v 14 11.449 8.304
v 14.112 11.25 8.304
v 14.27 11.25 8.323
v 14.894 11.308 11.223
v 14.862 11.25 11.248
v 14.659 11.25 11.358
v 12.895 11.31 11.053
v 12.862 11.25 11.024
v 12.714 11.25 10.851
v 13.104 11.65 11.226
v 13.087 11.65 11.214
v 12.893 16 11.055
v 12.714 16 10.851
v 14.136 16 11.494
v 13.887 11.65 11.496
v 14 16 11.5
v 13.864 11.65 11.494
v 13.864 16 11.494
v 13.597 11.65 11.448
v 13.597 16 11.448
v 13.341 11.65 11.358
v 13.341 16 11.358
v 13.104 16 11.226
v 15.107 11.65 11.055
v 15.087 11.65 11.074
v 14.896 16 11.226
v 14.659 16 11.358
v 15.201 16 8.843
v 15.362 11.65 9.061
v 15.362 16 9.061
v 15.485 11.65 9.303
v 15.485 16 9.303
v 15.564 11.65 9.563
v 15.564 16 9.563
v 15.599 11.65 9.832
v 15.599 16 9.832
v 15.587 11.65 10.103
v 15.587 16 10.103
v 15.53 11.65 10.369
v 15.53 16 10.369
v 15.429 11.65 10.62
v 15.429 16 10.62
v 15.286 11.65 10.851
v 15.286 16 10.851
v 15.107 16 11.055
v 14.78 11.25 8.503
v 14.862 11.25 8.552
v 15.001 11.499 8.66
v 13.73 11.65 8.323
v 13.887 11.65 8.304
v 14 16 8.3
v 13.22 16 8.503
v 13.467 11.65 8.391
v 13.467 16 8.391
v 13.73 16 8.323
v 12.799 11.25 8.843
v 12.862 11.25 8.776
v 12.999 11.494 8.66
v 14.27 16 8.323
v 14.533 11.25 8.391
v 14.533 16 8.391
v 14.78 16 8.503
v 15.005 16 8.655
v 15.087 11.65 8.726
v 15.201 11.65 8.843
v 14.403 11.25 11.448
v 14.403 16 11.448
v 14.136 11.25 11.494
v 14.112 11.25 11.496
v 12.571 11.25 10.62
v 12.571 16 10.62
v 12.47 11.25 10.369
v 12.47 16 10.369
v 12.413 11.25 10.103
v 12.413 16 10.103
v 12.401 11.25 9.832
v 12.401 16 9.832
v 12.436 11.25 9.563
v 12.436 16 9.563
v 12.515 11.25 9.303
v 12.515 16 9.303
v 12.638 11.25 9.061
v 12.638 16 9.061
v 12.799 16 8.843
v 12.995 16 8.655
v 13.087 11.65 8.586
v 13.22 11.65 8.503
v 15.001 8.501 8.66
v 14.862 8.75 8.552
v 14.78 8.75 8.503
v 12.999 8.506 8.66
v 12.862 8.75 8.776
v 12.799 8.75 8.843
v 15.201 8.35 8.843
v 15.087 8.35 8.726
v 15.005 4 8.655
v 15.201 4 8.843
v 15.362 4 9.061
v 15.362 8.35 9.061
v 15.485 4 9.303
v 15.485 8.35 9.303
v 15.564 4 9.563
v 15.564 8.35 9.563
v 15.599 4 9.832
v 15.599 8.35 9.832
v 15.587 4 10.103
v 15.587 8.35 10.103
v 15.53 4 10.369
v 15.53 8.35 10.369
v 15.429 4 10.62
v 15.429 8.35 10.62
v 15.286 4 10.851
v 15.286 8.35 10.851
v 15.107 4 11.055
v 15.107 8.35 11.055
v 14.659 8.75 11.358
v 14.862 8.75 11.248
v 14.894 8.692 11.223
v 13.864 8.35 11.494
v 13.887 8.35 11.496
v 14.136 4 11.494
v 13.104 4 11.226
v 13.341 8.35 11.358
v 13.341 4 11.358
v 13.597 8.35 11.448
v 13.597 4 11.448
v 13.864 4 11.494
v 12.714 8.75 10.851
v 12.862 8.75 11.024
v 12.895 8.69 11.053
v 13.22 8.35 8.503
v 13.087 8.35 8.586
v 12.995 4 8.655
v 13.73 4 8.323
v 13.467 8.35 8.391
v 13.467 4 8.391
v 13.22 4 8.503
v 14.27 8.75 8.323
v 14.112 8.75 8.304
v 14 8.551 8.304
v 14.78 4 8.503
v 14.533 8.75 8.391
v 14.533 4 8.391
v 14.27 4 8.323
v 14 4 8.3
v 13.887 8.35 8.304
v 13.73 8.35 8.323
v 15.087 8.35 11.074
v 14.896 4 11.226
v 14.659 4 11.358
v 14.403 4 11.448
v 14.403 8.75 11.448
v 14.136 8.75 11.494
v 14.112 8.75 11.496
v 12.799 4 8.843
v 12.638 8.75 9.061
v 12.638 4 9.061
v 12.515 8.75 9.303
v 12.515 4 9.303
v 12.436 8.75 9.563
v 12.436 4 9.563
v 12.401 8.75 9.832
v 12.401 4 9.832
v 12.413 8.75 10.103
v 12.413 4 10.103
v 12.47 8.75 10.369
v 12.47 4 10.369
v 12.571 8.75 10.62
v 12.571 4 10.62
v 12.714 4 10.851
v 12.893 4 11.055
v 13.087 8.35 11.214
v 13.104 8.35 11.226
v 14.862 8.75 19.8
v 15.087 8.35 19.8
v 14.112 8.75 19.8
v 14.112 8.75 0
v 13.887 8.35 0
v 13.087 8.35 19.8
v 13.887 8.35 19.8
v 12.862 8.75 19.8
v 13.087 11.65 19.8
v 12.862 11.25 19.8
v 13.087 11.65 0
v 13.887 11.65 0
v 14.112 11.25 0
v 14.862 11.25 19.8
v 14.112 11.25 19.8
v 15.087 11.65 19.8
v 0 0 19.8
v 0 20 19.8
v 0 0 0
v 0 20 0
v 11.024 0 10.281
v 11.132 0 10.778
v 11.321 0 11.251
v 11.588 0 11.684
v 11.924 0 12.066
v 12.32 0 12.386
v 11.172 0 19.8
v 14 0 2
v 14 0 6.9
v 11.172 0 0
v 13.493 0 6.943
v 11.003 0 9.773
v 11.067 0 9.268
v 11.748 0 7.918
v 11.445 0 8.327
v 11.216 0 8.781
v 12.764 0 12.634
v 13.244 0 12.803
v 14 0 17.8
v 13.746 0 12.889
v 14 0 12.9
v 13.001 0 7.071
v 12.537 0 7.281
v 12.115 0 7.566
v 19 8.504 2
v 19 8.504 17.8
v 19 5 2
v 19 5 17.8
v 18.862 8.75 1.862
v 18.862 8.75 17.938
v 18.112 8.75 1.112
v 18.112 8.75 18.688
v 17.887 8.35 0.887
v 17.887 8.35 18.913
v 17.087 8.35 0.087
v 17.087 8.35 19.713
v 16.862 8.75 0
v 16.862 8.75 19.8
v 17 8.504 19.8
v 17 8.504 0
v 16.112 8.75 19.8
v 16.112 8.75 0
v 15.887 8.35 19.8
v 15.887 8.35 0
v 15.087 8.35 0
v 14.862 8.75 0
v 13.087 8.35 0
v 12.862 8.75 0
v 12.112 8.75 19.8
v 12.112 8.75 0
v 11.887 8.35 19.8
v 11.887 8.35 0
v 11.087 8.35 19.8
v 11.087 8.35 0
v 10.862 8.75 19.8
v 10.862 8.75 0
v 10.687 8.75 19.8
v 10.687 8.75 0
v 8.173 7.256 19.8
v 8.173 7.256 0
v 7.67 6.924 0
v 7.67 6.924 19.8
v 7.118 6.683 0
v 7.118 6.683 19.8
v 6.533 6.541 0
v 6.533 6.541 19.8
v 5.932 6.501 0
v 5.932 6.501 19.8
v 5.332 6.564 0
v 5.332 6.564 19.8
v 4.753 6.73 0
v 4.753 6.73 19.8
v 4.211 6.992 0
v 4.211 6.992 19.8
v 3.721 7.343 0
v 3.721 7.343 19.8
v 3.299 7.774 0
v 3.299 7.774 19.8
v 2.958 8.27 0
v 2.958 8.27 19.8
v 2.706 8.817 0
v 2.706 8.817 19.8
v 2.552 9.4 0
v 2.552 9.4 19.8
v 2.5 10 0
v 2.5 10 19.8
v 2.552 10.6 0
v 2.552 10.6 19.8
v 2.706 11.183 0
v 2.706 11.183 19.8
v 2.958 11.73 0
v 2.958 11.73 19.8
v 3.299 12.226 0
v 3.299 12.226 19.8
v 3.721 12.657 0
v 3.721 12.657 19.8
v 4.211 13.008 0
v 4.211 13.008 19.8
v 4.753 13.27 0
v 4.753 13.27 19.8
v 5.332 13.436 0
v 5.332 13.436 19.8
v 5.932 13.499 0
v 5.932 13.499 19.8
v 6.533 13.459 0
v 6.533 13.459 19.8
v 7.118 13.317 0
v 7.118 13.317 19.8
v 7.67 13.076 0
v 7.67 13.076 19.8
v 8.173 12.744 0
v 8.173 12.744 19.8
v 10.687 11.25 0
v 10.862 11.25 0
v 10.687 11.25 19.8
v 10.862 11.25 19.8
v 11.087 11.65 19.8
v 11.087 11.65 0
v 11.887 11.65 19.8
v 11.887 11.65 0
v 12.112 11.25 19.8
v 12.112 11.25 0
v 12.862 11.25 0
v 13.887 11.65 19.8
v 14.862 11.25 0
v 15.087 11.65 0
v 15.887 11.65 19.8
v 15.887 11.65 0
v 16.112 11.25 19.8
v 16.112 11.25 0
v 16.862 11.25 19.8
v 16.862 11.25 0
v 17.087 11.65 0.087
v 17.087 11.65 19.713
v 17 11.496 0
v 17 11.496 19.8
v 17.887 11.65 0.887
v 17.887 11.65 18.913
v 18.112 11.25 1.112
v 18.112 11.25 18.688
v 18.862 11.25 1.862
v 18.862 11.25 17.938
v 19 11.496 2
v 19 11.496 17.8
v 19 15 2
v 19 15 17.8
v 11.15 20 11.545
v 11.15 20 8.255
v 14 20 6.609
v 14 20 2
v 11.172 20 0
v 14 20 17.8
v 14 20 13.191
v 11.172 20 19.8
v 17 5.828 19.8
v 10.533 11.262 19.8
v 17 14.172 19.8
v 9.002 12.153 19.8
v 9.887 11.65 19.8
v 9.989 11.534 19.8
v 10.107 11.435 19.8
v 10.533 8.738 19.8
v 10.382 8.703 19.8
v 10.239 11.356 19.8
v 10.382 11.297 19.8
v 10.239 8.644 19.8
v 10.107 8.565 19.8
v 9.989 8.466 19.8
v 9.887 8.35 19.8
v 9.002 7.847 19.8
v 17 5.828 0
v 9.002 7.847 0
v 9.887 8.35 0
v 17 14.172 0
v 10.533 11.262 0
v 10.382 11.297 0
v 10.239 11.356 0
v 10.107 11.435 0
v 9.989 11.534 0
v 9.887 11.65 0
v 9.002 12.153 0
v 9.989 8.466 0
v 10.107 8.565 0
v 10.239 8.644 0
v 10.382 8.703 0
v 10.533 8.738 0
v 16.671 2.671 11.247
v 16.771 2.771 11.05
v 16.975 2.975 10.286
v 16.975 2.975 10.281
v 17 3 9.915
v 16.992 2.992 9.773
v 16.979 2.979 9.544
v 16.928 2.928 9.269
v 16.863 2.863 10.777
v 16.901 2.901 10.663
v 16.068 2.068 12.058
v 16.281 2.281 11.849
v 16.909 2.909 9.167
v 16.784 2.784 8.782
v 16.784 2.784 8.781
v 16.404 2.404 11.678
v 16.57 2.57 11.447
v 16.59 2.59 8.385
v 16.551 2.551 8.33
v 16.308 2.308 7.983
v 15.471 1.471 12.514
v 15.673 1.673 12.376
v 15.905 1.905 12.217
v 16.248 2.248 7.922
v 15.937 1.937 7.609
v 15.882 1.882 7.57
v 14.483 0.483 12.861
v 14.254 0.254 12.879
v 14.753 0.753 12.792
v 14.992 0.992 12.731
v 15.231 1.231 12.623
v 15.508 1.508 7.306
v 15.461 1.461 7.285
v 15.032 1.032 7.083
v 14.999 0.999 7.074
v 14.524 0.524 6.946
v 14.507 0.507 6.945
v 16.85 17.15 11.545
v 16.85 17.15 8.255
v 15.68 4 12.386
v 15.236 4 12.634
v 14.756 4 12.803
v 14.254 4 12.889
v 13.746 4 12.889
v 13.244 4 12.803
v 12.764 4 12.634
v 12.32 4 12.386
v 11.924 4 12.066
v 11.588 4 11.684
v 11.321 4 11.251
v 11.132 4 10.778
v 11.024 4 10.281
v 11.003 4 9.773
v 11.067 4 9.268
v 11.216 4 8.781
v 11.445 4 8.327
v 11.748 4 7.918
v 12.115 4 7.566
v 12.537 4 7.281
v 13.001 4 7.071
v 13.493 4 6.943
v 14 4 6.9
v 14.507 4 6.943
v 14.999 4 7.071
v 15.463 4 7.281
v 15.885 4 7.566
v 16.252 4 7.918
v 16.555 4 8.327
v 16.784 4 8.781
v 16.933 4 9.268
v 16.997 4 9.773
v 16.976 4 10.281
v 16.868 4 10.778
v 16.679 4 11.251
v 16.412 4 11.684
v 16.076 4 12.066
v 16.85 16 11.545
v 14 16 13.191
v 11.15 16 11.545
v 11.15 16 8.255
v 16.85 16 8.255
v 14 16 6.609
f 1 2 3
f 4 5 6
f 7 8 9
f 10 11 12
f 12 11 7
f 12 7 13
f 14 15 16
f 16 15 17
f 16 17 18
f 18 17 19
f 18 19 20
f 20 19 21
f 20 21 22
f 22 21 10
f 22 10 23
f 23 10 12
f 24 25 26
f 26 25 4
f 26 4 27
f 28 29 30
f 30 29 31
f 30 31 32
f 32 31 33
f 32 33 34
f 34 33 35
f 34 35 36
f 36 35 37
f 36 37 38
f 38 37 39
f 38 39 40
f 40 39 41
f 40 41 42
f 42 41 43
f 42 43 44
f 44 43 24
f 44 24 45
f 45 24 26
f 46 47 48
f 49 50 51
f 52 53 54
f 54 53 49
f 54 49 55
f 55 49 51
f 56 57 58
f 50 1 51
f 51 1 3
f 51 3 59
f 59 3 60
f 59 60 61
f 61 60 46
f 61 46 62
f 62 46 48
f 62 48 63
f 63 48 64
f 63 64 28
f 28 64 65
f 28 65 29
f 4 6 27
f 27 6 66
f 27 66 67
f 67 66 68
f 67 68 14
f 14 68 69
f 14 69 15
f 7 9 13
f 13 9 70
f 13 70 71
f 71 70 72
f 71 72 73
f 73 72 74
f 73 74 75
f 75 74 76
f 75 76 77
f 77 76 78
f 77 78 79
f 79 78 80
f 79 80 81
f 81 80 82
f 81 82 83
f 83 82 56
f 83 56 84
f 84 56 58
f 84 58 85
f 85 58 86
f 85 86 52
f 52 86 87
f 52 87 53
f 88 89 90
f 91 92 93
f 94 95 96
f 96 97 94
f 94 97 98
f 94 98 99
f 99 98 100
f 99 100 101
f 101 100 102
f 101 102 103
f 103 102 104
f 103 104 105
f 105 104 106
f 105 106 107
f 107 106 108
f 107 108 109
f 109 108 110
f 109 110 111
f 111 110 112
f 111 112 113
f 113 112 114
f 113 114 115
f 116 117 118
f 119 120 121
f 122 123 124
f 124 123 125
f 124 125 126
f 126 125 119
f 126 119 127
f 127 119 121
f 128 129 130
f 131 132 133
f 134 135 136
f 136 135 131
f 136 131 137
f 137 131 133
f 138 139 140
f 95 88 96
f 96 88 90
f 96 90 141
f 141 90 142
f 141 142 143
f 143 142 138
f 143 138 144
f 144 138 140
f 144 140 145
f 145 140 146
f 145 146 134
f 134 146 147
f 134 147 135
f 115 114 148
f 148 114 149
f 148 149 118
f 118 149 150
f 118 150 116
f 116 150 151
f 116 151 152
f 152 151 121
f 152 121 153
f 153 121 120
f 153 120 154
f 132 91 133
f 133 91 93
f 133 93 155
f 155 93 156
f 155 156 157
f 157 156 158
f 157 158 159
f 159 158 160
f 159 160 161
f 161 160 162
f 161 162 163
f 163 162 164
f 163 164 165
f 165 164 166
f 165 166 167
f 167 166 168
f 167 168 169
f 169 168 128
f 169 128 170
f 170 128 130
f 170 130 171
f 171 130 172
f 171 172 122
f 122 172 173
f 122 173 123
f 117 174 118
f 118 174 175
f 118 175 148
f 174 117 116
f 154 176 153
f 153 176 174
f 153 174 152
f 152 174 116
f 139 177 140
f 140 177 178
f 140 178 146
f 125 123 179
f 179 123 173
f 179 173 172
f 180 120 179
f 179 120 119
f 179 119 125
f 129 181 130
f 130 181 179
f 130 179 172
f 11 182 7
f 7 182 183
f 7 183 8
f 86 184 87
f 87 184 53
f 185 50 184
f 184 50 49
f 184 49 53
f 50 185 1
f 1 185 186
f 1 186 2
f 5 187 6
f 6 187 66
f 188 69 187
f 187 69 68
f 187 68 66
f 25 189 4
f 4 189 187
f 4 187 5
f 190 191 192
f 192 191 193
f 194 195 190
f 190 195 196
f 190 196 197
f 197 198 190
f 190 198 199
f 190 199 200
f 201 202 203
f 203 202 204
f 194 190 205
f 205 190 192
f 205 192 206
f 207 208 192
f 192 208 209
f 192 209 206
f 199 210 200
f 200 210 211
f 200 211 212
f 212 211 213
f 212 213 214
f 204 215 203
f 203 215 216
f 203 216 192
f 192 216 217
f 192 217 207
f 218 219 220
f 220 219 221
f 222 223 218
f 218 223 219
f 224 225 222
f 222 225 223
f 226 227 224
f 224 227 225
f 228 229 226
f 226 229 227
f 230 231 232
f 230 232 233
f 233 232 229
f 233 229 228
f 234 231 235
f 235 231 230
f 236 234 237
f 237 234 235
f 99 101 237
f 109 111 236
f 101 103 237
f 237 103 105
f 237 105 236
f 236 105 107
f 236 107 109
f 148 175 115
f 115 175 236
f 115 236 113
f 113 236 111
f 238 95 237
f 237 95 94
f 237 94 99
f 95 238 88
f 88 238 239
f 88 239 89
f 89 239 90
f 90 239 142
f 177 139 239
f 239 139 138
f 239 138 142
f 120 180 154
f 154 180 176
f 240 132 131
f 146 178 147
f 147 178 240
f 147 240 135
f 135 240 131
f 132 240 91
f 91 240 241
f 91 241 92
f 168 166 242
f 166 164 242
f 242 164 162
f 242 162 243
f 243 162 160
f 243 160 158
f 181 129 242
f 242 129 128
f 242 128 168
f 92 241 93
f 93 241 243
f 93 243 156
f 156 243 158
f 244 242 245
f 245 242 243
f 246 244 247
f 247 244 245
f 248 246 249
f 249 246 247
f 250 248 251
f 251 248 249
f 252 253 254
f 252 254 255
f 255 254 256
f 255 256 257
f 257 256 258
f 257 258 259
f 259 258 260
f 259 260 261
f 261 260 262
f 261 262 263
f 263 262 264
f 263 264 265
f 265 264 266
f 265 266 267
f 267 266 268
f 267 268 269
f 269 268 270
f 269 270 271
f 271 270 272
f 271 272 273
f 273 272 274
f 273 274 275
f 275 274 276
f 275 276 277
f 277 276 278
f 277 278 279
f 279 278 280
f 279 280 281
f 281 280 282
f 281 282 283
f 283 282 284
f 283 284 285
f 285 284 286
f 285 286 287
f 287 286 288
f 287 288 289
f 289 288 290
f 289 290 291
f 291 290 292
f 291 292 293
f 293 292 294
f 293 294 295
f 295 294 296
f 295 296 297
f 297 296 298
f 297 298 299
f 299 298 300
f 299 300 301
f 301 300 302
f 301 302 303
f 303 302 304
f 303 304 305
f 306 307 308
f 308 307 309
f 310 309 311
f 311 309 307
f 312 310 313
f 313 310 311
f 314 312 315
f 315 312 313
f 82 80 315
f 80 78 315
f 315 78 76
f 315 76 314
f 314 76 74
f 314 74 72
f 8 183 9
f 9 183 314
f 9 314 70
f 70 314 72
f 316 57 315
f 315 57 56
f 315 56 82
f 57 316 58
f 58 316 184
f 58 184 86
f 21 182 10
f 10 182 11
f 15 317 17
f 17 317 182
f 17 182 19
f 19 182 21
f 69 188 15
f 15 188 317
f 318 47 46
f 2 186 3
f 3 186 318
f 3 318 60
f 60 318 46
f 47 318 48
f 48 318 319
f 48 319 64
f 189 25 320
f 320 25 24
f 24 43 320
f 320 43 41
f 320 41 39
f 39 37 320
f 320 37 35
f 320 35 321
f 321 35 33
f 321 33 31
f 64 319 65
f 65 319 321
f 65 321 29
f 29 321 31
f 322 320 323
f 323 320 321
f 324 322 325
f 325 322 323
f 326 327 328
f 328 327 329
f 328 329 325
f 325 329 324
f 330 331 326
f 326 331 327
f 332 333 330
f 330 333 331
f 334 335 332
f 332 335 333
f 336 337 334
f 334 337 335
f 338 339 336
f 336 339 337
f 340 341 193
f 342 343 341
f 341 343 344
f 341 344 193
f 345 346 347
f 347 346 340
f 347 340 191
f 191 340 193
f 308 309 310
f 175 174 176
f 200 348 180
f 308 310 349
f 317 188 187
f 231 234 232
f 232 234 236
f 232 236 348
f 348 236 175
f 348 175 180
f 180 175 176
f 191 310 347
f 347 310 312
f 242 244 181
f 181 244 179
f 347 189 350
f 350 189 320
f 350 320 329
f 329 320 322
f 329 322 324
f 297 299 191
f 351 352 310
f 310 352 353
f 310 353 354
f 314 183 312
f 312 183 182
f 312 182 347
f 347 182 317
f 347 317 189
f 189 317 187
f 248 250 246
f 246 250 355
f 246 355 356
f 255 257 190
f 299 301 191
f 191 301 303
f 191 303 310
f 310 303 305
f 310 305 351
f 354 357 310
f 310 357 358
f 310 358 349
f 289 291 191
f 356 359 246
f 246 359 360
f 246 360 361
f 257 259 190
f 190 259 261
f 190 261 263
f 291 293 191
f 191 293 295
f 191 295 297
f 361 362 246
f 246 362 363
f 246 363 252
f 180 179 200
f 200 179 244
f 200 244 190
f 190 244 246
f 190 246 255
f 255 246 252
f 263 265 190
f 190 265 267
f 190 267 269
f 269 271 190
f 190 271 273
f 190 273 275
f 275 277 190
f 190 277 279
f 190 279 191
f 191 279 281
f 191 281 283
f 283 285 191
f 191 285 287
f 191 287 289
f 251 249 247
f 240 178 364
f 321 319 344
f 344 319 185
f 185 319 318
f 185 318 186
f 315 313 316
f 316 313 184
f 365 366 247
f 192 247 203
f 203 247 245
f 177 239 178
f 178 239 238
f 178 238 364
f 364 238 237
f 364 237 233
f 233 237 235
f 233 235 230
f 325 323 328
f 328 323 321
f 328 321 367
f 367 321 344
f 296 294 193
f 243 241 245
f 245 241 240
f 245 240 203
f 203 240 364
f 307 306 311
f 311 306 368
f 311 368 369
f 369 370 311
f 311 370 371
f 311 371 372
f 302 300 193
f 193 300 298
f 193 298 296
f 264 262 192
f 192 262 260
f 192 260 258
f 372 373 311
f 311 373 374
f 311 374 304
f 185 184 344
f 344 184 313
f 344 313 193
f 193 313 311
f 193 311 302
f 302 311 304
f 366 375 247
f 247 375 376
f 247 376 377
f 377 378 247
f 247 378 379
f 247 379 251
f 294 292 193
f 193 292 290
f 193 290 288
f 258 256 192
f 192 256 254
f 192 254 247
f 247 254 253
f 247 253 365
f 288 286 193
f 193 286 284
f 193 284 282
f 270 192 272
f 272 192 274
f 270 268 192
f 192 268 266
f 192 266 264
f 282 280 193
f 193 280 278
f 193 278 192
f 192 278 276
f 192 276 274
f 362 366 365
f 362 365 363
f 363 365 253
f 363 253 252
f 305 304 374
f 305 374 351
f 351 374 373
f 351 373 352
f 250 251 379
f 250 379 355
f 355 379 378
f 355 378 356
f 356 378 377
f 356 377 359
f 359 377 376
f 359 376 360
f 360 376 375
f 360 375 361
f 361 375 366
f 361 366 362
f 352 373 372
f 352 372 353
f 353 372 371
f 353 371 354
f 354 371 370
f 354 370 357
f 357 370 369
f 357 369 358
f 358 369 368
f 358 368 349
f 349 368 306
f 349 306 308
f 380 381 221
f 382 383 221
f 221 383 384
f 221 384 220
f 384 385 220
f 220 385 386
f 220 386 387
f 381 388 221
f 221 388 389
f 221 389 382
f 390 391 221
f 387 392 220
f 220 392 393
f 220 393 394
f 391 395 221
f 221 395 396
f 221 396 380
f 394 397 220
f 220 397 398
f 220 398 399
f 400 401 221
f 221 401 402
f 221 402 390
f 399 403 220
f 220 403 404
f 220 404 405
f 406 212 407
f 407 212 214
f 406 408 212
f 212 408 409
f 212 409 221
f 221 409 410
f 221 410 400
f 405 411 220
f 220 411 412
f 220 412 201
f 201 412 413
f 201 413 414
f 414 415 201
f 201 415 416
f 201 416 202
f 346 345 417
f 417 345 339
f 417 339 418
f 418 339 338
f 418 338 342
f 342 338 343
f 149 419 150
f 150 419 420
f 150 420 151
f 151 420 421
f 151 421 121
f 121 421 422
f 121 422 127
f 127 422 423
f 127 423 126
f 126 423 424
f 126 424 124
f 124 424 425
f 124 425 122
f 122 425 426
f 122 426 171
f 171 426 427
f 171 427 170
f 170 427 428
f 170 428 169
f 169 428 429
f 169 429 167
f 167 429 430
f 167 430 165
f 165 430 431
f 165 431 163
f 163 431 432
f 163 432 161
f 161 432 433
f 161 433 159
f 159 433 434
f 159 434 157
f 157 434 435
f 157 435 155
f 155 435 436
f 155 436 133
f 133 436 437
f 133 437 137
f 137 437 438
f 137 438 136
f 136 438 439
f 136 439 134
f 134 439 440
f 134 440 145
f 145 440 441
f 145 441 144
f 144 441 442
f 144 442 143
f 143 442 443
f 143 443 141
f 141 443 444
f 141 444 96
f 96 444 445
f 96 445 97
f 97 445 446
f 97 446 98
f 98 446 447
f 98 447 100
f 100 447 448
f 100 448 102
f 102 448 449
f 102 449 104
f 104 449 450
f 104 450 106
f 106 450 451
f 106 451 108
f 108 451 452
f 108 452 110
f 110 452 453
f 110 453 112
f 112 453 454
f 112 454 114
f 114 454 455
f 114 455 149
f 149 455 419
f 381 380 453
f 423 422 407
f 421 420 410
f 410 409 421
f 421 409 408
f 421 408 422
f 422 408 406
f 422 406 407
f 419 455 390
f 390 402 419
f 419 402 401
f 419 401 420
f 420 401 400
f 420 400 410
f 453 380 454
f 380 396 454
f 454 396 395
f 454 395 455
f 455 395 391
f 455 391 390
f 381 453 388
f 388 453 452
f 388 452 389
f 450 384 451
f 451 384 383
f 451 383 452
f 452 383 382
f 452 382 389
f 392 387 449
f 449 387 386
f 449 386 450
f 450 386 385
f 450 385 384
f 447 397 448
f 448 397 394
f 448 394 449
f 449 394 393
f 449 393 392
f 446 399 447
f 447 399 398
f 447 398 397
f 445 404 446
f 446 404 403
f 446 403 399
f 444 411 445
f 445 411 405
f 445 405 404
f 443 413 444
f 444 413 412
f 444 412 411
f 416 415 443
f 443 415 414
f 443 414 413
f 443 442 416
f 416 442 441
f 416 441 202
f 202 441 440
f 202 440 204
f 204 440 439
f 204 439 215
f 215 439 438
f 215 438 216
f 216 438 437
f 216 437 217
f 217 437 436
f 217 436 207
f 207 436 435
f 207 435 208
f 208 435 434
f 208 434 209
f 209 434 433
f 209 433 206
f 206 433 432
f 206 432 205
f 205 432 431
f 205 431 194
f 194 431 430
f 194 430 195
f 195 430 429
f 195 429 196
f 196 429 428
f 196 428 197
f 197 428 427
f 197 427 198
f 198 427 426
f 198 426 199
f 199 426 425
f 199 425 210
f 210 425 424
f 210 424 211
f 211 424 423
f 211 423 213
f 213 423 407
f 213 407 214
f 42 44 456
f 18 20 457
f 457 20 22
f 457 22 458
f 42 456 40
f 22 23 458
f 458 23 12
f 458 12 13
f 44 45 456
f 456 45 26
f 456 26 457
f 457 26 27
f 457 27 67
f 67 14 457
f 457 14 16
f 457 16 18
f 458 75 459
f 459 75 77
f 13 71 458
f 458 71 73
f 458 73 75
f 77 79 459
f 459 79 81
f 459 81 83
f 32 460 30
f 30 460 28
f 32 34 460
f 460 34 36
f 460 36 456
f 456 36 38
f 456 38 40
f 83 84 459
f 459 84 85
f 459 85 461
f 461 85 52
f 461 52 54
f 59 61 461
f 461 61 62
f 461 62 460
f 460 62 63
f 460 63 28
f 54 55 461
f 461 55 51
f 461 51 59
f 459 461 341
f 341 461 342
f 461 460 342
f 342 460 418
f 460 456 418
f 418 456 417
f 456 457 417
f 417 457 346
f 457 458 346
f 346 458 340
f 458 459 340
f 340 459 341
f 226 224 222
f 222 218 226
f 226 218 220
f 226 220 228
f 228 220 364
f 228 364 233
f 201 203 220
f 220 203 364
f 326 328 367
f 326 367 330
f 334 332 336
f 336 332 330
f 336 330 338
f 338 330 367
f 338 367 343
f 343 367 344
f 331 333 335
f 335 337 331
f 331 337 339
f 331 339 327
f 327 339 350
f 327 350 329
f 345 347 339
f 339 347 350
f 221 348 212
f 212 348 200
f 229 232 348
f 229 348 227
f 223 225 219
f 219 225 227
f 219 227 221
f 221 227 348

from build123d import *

# Parameters (mm, degrees)
BOSS_EXTRUDE1_DEPTH = 19.8
FILLET1_R           = 10
FILLET2_R           = 1
CHAMFER1_SIZE       = 5
CUT_EXTRUDE1_REACH  = 35.956
SKETCH2_R           = 1.6
SKETCH3_R           = 3
CUT_EXTRUDE2_DEPTH  = 4
CUT_EXTRUDE3_DEPTH  = 4
CHAMFER2_SIZE       = 2


with BuildPart() as part:
    # Sketch1 → Boss-Extrude1 (new body)
    with BuildSketch(Plane.XY):
        with BuildLine():
            Line((18.861664867, 11.25), (18.111664867, 11.25))
            Line((18.111664867, 11.25), (17.886664867, 11.65))
            Line((17.886664867, 11.65), (17.086664867, 11.65))
            Line((17.086664867, 11.65), (16.861664867, 11.25))
            Line((16.861664867, 11.25), (16.111664867, 11.25))
            Line((16.111664867, 11.25), (15.886664867, 11.65))
            Line((15.886664867, 11.65), (15.086664867, 11.65))
            Line((15.086664867, 11.65), (14.861664867, 11.25))
            Line((14.861664867, 11.25), (14.111664867, 11.25))
            Line((14.111664867, 11.25), (13.886664867, 11.65))
            Line((13.886664867, 11.65), (13.086664867, 11.65))
            Line((13.086664867, 11.65), (12.861664867, 11.25))
            Line((12.861664867, 11.25), (12.111664867, 11.25))
            Line((12.111664867, 11.25), (11.886664867, 11.65))
            Line((11.886664867, 11.65), (11.086664867, 11.65))
            Line((11.086664867, 11.65), (10.861664867, 11.25))
            Line((10.861664867, 11.25), (10.111664867, 11.25))
            Line((10.111664867, 11.25), (9.886664867, 11.65))
            Line((9.886664867, 11.65), (9.086664867, 11.65))
            ThreePointArc((9.086664867, 11.65), (2.5, 10), (9.086664867, 8.35))
            Line((9.086664867, 8.35), (9.886664867, 8.35))
            Line((9.886664867, 8.35), (10.111664867, 8.75))
            Line((10.111664867, 8.75), (10.861664867, 8.75))
            Line((10.861664867, 8.75), (11.086664867, 8.35))
            Line((11.086664867, 8.35), (11.886664867, 8.35))
            Line((11.886664867, 8.35), (12.111664867, 8.75))
            Line((12.111664867, 8.75), (12.861664867, 8.75))
            Line((12.861664867, 8.75), (13.086664867, 8.35))
            Line((13.086664867, 8.35), (13.886664867, 8.35))
            Line((13.886664867, 8.35), (14.111664867, 8.75))
            Line((14.111664867, 8.75), (14.861664867, 8.75))
            Line((14.861664867, 8.75), (15.086664867, 8.35))
            Line((15.086664867, 8.35), (15.886664867, 8.35))
            Line((15.886664867, 8.35), (16.111664867, 8.75))
            Line((16.111664867, 8.75), (16.861664867, 8.75))
            Line((16.861664867, 8.75), (17.086664867, 8.35))
            Line((17.086664867, 8.35), (17.886664867, 8.35))
            Line((17.886664867, 8.35), (18.111664867, 8.75))
            Line((18.111664867, 8.75), (18.861664867, 8.75))
            Line((18.861664867, 8.75), (19, 8.504070874))
            Line((19, 8.504070874), (19, 0))
            Line((19, 0), (0, 0))
            Line((0, 0), (0, 20))
            Line((0, 20), (19, 20))
            Line((19, 20), (19, 11.495929126))
            Line((19, 11.495929126), (18.861664867, 11.25))
        make_face()
    extrude(amount=BOSS_EXTRUDE1_DEPTH)

    # Fillet1
    # the kernel refuses this fillet: 10 mm, written as the material it takes off along each edge
    with BuildSketch(Plane(origin=(9.086664867, 8.35, -3.562523753), x_dir=(1, 0, 0), z_dir=(0, 0, 1))) as fillet1_piece_1:
        with BuildLine():
            CenterArc((5.295321975, -8.932641286), FILLET1_R, 116.713674189, 11.667329514)
            Line((-0.913557167, -1.093647741), (-1.03773475, -0.93686787))
            ThreePointArc((-1.03773475, -0.93686787), (-0.554023827, -0.465591965), (-0.17638085, 0.094285714))
            Line((-0.17638085, 0.094285714), (0, 0.2))
            ThreePointArc((0, 0.2), (0.4, 0.2), (0.710093561, 0.178652826))
            Line((0.710093561, 0.178652826), (0.8, 0))
        make_face()
    extrude(amount=26.925047506, mode=Mode.SUBTRACT)
    with BuildSketch(Plane(origin=(9.086664867, 11.65, -3.562523753), x_dir=(1, 0, 0), z_dir=(0, 0, 1))) as fillet1_piece_2:
        with BuildLine():
            CenterArc((5.295321975, 8.932641286), FILLET1_R, 231.618996297, 11.667329514)
            Line((-0.913557167, 1.093647741), (-1.03773475, 0.93686787))
            ThreePointArc((-1.03773475, 0.93686787), (-0.554023827, 0.465591965), (-0.17638085, -0.094285714))
            Line((-0.17638085, -0.094285714), (0, -0.2))
            ThreePointArc((0, -0.2), (0.4, -0.2), (0.710093561, -0.178652826))
            Line((0.710093561, -0.178652826), (0.8, 0))
        make_face()
    extrude(amount=26.925047506, mode=Mode.SUBTRACT)

    # Fillet2
    # the kernel refuses this fillet: 1 mm, written as the material it takes off along each edge
    with BuildSketch(Plane(origin=(10.111664867, 8.75, -1.4375), x_dir=(-0.4902612396325597, -0.8715755371245488, 0), z_dir=(0, 0, 1))) as fillet2_piece_1:
        with BuildLine():
            CenterArc((0.589675324, 0.991417173), FILLET2_R, 209.357753543, 53.130102354)
            Line((-0.281900213, 0.501155934), (-0.299331724, 0.491350709))
            Line((-0.299331724, 0.491350709), (-0.017431511, -0.009805225))
            Line((-0.017431511, -0.009805225), (0, -0.02))
            ThreePointArc((0, -0.02), (0.229469497, -0.02), (0.456324267, -0.019828343))
            Line((0.456324267, -0.019828343), (0.458938994, 0))
        make_face()
    extrude(amount=22.675, mode=Mode.SUBTRACT)
    with BuildSketch(Plane(origin=(10.111664867, 11.25, -1.4375), x_dir=(-0.4902612396325682, 0.8715755371245442, 0), z_dir=(0, 0, 1))) as fillet2_piece_2:
        with BuildLine():
            CenterArc((0.589675324, -0.991417173), FILLET2_R, 97.512144103, 53.130102354)
            Line((-0.281900213, -0.501155934), (-0.299331724, -0.491350709))
            Line((-0.299331724, -0.491350709), (-0.017431511, 0.009805225))
            Line((-0.017431511, 0.009805225), (0, 0.02))
            ThreePointArc((0, 0.02), (0.229469497, 0.02), (0.456324267, 0.019828343))
            Line((0.456324267, 0.019828343), (0.458938994, 0))
        make_face()
    extrude(amount=22.675, mode=Mode.SUBTRACT)

    # Chamfer1
    chamfer1_edges = [part.edges().sort_by_distance(p)[0] for p in [
        (19, 20, 9.9),
        (19, 0, 9.9),
    ]]
    chamfer(chamfer1_edges, length=CHAMFER1_SIZE)

    # Cut-Extrude1: up to this face of the body (flat: up to its plane)
    cut_extrude1_end = Plane(part.part.faces().sort_by_distance((7, 20, 9.9))[0])
    # Sketch2 → Cut-Extrude1 (cut, up to the picked face)
    with BuildSketch(Plane.XZ, mode=Mode.PRIVATE) as cut_extrude1_sk1:
        with Locations(Location((14, 9.9, 0), (0, 0, 270))):
            Circle(SKETCH2_R)
    cut_extrude1_tool1 = split(extrude(cut_extrude1_sk1.sketch, amount=-CUT_EXTRUDE1_REACH, mode=Mode.PRIVATE), bisect_by=cut_extrude1_end, keep=Keep.BOTH, mode=Mode.PRIVATE)
    add(cut_extrude1_tool1.solids().sort_by(Axis((14, 0, 9.9), (0, 1, 0)))[0], mode=Mode.SUBTRACT)

    # Sketch3 → Cut-Extrude2 (cut)
    with BuildSketch(Plane.XZ):
        with Locations(Location((14, 9.9, 0), (0, 0, 270))):
            Circle(SKETCH3_R)
    extrude(amount=-CUT_EXTRUDE2_DEPTH, mode=Mode.SUBTRACT)

    # Sketch4 → Cut-Extrude3 (cut)
    with BuildSketch(Plane(origin=(0, 20, 0), x_dir=(1, 0, 0), z_dir=(0, 1, 0))):
        Polygon((11.15, -8.254551733), (11.15, -11.545448267), (14, -13.190896534), (16.85, -11.545448267), (16.85, -8.254551733), (14, -6.609103466), align=None)
    extrude(amount=-CUT_EXTRUDE3_DEPTH, mode=Mode.SUBTRACT)

    # Chamfer2
    chamfer2_edges = [part.edges().sort_by_distance(p)[0] for p in [
        (16.5, 2.5, 0),
        (19, 6.752035437, 0),
        (16.5, 17.5, 0),
        (19, 13.247964563, 0),
        (16.5, 17.5, 19.8),
        (19, 13.247964563, 19.8),
        (19, 6.752035437, 19.8),
        (16.5, 2.5, 19.8),
    ]]
    chamfer(chamfer2_edges, length=CHAMFER2_SIZE)


solid = part.part
